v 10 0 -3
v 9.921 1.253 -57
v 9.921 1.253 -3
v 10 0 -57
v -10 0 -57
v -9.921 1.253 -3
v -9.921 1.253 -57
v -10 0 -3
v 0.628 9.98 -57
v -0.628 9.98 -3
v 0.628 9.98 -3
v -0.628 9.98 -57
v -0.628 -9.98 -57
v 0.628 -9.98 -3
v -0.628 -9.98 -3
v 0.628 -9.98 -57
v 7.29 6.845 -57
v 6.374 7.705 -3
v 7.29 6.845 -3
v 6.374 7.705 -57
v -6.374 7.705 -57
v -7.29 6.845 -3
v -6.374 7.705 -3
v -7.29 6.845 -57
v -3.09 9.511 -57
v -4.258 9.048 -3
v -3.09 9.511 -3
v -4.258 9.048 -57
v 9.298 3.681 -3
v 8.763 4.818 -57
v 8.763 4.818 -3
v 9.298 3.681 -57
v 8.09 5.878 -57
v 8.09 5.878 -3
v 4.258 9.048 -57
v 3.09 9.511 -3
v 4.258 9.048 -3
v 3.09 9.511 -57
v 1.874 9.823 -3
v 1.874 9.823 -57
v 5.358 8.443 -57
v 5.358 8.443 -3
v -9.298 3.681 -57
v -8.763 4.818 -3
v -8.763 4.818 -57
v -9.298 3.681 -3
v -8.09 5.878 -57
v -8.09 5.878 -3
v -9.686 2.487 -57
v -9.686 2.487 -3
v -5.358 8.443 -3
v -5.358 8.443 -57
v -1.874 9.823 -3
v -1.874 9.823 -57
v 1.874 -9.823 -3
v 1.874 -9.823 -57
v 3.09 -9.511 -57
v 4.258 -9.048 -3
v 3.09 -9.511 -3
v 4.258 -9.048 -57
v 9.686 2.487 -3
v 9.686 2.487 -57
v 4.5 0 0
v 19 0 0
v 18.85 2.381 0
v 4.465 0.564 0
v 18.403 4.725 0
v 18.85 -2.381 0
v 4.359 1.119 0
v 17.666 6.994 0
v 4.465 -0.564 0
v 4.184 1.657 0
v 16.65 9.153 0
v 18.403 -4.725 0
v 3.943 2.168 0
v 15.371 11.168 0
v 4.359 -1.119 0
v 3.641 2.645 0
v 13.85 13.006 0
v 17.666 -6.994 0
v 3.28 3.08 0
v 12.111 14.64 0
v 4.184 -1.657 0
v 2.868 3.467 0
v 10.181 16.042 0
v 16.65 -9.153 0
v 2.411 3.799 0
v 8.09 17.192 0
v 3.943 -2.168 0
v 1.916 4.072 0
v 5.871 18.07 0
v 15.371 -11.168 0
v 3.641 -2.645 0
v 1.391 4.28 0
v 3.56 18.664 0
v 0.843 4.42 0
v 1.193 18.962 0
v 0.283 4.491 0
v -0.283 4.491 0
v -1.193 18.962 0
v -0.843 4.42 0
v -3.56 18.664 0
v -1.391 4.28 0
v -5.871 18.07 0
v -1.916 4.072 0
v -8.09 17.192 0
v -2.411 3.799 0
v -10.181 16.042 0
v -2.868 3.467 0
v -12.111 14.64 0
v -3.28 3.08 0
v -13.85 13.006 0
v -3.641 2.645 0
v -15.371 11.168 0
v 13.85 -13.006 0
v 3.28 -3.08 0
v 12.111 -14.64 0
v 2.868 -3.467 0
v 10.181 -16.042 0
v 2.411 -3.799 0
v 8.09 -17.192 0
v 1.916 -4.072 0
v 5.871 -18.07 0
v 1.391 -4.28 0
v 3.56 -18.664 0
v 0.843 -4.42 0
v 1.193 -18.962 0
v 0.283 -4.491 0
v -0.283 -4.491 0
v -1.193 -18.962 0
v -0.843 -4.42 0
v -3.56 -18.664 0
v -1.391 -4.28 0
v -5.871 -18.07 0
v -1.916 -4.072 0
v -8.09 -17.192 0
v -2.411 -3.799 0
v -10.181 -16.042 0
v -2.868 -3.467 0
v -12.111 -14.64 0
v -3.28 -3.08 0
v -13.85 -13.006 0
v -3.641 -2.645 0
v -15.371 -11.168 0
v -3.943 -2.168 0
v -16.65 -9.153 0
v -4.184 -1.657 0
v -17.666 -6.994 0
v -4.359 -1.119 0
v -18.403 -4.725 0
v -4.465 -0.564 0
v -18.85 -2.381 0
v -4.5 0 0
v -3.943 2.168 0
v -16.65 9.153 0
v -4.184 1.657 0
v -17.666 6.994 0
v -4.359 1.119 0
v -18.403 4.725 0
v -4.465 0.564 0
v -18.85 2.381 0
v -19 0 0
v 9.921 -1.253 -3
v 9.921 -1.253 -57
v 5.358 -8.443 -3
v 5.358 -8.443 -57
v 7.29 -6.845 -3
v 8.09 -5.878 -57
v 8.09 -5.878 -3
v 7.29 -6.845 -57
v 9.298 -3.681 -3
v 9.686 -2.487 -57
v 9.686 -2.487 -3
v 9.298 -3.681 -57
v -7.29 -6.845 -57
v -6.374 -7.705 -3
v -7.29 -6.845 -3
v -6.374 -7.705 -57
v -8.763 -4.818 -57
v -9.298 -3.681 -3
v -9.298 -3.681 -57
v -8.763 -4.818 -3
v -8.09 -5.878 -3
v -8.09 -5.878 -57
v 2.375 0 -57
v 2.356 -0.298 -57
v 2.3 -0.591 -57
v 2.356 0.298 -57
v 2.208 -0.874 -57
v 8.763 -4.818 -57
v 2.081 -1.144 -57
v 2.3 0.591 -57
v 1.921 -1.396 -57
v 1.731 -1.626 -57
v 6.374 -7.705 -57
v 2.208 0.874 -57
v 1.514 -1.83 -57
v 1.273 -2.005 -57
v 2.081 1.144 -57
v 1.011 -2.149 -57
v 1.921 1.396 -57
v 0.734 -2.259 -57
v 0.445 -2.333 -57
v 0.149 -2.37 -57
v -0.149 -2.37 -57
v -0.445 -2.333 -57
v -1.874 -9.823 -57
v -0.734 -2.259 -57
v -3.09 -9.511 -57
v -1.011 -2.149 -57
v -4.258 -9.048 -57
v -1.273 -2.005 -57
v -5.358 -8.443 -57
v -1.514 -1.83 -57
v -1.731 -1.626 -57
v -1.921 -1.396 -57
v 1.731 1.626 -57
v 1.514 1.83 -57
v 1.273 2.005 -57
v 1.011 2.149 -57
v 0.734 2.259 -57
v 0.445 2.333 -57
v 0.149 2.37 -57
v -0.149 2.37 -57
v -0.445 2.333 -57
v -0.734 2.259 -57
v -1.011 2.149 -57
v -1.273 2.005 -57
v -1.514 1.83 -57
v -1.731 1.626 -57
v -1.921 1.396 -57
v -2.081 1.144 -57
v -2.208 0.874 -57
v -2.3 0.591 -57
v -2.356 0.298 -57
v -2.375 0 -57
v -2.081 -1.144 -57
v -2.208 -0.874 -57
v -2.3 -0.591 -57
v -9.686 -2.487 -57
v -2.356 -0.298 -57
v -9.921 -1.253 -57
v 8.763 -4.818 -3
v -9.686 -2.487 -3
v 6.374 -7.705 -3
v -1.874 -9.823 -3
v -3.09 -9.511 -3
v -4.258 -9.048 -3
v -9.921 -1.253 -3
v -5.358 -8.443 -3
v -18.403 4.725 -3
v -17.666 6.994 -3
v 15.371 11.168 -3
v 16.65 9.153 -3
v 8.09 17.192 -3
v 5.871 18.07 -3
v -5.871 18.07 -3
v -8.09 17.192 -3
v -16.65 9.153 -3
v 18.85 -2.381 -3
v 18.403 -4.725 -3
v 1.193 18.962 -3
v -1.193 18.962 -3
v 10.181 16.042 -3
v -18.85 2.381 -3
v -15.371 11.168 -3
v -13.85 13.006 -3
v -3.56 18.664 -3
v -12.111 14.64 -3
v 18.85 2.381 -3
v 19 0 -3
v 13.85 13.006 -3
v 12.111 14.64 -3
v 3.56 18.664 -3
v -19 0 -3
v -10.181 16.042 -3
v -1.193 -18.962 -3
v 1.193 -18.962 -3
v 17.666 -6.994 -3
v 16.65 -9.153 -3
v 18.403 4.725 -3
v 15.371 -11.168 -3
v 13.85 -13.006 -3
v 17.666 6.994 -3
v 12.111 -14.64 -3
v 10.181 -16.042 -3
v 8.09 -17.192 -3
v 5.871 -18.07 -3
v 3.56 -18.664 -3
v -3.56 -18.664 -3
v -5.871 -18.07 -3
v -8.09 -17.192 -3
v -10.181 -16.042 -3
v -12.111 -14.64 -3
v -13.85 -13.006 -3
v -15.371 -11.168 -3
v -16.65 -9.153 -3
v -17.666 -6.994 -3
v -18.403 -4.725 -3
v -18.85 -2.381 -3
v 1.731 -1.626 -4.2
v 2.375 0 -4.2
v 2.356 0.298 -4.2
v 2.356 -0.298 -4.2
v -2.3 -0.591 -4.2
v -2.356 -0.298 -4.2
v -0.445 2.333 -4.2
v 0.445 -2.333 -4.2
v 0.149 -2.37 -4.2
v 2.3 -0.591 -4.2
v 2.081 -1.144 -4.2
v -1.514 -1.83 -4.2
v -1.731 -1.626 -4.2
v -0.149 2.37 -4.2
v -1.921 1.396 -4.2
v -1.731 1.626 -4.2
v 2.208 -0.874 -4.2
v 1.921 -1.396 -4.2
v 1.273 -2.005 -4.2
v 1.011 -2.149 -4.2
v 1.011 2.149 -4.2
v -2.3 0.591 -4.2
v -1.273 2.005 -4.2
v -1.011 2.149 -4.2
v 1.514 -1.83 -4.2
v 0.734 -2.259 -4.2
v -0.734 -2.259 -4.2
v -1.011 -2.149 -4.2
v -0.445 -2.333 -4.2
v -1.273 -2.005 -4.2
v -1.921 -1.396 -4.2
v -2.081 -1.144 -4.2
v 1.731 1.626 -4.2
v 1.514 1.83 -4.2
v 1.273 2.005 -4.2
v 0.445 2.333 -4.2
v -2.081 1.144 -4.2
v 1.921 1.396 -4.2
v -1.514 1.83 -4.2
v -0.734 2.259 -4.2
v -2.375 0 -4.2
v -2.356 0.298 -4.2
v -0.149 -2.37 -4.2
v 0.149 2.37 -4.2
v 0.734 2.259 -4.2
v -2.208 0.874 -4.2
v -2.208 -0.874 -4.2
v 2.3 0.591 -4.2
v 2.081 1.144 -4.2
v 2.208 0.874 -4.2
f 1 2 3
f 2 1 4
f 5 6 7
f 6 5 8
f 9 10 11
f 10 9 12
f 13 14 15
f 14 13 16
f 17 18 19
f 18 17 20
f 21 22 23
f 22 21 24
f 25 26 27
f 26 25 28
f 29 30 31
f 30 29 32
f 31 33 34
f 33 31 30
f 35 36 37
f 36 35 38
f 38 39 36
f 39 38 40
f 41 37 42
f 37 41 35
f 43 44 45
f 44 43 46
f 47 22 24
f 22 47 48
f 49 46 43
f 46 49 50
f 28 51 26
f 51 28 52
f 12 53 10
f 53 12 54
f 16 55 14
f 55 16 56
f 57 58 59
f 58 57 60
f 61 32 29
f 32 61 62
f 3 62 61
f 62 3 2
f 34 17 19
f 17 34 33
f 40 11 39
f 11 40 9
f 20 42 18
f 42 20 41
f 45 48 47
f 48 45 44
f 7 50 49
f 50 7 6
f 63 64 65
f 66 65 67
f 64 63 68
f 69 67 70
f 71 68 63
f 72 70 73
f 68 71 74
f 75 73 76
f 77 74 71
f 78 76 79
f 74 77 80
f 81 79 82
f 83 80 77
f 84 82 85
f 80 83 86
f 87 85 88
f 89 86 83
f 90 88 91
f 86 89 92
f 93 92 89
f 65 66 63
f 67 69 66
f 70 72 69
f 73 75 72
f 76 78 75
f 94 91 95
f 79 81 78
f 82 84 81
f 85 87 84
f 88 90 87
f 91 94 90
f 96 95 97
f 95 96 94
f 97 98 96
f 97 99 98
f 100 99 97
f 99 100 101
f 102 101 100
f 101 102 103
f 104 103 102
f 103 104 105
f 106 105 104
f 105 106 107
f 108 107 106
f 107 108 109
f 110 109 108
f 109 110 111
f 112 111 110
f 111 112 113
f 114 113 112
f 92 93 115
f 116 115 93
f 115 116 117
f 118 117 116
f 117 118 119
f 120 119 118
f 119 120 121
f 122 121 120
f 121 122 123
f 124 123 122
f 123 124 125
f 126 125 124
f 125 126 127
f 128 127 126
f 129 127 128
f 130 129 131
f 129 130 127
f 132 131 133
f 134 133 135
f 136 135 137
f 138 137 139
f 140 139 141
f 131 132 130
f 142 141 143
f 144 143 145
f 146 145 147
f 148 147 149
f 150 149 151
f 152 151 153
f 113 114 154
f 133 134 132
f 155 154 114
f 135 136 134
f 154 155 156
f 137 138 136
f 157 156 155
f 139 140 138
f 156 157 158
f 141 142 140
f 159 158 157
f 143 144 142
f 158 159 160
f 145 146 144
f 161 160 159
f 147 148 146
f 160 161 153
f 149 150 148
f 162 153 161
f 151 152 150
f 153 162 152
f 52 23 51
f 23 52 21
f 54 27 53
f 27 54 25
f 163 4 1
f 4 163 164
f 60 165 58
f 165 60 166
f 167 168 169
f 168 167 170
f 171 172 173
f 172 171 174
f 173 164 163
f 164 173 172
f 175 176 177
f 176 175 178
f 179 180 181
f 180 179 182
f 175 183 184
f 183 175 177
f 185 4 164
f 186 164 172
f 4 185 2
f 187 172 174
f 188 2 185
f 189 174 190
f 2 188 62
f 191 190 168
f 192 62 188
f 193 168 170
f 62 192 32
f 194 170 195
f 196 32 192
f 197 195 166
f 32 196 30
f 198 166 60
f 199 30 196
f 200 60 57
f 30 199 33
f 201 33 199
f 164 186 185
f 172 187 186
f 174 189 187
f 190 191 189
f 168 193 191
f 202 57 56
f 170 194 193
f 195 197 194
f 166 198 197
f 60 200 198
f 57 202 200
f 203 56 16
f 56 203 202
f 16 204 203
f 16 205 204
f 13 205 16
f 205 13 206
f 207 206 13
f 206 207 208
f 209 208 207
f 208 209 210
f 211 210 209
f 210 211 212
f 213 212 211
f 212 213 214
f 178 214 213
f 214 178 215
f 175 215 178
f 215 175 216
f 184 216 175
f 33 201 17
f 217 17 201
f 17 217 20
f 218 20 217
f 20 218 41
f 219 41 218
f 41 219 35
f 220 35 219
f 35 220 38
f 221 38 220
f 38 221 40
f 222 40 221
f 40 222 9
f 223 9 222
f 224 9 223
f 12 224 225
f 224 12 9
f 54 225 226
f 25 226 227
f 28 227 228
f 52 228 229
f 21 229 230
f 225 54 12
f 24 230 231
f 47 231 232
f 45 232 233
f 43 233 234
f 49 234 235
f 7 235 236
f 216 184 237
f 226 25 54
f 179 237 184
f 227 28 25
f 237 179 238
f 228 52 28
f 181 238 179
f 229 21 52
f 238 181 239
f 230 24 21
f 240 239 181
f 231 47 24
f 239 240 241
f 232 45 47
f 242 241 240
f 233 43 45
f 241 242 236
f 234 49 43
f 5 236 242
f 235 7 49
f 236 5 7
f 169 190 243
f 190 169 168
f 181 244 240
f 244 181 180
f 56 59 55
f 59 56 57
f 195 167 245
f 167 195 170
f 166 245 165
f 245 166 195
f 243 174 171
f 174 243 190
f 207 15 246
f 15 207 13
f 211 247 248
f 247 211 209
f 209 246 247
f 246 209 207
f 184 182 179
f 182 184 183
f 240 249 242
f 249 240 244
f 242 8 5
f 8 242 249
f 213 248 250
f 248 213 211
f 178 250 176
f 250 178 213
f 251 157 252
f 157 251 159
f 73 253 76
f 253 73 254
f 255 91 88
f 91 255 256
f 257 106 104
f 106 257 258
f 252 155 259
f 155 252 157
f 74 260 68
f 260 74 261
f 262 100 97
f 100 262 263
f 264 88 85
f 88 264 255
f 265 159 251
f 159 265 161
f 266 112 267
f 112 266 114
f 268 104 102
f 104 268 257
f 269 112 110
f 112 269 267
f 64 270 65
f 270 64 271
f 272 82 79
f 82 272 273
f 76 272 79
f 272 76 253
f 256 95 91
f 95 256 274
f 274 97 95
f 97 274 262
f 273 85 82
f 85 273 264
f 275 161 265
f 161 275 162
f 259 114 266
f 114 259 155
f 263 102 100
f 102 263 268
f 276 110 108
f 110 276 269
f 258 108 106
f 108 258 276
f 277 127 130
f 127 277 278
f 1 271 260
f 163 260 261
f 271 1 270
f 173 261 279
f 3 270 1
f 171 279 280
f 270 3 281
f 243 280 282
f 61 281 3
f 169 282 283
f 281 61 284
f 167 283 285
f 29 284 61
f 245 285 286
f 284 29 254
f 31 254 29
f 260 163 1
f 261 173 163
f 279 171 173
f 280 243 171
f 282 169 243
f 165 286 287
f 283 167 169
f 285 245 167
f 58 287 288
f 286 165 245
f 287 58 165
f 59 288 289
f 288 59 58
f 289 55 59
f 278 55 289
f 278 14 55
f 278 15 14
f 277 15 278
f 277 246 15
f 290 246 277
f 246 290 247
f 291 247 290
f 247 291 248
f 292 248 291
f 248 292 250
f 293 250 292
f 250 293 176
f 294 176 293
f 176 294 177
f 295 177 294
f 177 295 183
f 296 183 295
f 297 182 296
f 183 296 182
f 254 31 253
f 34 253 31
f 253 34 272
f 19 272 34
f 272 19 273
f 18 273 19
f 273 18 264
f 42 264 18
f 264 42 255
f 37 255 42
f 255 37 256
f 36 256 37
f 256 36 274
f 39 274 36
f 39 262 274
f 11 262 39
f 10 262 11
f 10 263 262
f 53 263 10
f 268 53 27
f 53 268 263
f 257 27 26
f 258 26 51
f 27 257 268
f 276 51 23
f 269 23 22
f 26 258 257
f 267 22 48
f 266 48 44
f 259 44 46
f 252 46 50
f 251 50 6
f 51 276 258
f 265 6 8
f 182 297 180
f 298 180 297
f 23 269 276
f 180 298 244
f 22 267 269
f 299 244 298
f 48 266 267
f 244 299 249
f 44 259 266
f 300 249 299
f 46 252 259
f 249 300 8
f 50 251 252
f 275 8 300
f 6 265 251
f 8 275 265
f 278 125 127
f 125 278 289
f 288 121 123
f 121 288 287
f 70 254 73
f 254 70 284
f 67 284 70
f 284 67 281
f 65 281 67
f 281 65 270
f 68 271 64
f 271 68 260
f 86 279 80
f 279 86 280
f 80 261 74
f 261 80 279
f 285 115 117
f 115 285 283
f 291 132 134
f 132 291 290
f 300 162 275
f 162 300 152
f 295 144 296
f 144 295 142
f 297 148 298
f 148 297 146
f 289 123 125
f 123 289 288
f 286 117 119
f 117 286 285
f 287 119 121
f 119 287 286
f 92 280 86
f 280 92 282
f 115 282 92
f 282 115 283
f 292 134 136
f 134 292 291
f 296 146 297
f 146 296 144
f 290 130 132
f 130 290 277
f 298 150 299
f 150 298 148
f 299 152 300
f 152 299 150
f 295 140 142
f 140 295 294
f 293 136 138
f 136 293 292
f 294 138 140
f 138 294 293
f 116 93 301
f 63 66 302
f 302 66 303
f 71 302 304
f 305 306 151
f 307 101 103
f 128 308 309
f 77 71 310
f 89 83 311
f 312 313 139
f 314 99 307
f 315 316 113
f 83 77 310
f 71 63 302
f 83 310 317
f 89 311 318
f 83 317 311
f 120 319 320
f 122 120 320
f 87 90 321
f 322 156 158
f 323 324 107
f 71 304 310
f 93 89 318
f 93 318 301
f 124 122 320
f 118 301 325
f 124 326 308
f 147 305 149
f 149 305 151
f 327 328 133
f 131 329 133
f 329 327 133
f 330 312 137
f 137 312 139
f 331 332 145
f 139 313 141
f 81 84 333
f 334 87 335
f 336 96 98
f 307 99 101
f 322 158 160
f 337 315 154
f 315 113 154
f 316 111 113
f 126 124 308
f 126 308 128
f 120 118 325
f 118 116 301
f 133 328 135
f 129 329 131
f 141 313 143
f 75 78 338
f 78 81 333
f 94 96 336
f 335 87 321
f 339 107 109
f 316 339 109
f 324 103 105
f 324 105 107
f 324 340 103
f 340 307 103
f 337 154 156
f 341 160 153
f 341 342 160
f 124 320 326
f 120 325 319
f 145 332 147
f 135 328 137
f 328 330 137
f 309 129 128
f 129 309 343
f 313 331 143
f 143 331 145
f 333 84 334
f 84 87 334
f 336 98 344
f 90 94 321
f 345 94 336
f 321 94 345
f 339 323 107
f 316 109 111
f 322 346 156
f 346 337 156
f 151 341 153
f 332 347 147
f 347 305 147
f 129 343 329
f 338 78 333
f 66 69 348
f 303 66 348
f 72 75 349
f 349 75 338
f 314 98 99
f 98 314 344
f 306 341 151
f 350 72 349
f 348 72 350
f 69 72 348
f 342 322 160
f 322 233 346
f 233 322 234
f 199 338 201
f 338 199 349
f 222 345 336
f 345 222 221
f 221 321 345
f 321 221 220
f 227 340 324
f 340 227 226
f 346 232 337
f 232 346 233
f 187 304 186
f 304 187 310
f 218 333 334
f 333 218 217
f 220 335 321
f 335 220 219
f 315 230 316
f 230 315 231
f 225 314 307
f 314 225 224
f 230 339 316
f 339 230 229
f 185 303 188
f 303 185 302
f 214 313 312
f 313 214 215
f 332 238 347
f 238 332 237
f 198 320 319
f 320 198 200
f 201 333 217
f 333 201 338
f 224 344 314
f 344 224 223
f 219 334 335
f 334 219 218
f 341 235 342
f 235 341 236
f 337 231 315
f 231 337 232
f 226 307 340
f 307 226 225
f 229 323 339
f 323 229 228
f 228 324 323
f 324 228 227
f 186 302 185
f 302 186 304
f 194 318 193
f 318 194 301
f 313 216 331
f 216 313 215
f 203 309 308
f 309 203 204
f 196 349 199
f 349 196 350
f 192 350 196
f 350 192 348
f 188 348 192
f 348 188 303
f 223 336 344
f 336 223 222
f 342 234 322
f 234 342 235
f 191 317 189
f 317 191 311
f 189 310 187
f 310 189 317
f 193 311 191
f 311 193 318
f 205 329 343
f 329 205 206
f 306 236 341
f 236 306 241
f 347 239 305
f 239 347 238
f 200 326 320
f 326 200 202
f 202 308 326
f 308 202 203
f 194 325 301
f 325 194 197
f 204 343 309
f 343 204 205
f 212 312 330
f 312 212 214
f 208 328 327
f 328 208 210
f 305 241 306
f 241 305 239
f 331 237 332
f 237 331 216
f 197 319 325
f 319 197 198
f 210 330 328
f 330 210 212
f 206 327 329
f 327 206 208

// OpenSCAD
$fn = 50;


difference() {
	union() {
		translate(v = [0, 0, -57.0000000000]) {
			cylinder(h = 57, r = 10.0000000000);
		}
		translate(v = [0, 0, -3.0000000000]) {
			cylinder(h = 3, r = 19.0000000000);
		}
	}
	union() {
		translate(v = [0, 0, 0]) {
			rotate(a = [0, 0, 0]) {
				difference() {
					union() {
						#translate(v = [0, 0, -57.0000000000]) {
							cylinder(h = 57, r = 2.2500000000);
						}
						#translate(v = [0, 0, -4.2000000000]) {
							cylinder(h = 4.2000000000, r = 10.0000000000, r1 = 2.3750000000, r2 = 4.5000000000);
						}
						#translate(v = [0, 0, -57.0000000000]) {
							cylinder(h = 57, r = 2.3750000000);
						}
						#translate(v = [0, 0, -57.0000000000]) {
							cylinder(h = 57, r = 2.2500000000);
						}
					}
					union();
				}
			}
		}
	}
}
